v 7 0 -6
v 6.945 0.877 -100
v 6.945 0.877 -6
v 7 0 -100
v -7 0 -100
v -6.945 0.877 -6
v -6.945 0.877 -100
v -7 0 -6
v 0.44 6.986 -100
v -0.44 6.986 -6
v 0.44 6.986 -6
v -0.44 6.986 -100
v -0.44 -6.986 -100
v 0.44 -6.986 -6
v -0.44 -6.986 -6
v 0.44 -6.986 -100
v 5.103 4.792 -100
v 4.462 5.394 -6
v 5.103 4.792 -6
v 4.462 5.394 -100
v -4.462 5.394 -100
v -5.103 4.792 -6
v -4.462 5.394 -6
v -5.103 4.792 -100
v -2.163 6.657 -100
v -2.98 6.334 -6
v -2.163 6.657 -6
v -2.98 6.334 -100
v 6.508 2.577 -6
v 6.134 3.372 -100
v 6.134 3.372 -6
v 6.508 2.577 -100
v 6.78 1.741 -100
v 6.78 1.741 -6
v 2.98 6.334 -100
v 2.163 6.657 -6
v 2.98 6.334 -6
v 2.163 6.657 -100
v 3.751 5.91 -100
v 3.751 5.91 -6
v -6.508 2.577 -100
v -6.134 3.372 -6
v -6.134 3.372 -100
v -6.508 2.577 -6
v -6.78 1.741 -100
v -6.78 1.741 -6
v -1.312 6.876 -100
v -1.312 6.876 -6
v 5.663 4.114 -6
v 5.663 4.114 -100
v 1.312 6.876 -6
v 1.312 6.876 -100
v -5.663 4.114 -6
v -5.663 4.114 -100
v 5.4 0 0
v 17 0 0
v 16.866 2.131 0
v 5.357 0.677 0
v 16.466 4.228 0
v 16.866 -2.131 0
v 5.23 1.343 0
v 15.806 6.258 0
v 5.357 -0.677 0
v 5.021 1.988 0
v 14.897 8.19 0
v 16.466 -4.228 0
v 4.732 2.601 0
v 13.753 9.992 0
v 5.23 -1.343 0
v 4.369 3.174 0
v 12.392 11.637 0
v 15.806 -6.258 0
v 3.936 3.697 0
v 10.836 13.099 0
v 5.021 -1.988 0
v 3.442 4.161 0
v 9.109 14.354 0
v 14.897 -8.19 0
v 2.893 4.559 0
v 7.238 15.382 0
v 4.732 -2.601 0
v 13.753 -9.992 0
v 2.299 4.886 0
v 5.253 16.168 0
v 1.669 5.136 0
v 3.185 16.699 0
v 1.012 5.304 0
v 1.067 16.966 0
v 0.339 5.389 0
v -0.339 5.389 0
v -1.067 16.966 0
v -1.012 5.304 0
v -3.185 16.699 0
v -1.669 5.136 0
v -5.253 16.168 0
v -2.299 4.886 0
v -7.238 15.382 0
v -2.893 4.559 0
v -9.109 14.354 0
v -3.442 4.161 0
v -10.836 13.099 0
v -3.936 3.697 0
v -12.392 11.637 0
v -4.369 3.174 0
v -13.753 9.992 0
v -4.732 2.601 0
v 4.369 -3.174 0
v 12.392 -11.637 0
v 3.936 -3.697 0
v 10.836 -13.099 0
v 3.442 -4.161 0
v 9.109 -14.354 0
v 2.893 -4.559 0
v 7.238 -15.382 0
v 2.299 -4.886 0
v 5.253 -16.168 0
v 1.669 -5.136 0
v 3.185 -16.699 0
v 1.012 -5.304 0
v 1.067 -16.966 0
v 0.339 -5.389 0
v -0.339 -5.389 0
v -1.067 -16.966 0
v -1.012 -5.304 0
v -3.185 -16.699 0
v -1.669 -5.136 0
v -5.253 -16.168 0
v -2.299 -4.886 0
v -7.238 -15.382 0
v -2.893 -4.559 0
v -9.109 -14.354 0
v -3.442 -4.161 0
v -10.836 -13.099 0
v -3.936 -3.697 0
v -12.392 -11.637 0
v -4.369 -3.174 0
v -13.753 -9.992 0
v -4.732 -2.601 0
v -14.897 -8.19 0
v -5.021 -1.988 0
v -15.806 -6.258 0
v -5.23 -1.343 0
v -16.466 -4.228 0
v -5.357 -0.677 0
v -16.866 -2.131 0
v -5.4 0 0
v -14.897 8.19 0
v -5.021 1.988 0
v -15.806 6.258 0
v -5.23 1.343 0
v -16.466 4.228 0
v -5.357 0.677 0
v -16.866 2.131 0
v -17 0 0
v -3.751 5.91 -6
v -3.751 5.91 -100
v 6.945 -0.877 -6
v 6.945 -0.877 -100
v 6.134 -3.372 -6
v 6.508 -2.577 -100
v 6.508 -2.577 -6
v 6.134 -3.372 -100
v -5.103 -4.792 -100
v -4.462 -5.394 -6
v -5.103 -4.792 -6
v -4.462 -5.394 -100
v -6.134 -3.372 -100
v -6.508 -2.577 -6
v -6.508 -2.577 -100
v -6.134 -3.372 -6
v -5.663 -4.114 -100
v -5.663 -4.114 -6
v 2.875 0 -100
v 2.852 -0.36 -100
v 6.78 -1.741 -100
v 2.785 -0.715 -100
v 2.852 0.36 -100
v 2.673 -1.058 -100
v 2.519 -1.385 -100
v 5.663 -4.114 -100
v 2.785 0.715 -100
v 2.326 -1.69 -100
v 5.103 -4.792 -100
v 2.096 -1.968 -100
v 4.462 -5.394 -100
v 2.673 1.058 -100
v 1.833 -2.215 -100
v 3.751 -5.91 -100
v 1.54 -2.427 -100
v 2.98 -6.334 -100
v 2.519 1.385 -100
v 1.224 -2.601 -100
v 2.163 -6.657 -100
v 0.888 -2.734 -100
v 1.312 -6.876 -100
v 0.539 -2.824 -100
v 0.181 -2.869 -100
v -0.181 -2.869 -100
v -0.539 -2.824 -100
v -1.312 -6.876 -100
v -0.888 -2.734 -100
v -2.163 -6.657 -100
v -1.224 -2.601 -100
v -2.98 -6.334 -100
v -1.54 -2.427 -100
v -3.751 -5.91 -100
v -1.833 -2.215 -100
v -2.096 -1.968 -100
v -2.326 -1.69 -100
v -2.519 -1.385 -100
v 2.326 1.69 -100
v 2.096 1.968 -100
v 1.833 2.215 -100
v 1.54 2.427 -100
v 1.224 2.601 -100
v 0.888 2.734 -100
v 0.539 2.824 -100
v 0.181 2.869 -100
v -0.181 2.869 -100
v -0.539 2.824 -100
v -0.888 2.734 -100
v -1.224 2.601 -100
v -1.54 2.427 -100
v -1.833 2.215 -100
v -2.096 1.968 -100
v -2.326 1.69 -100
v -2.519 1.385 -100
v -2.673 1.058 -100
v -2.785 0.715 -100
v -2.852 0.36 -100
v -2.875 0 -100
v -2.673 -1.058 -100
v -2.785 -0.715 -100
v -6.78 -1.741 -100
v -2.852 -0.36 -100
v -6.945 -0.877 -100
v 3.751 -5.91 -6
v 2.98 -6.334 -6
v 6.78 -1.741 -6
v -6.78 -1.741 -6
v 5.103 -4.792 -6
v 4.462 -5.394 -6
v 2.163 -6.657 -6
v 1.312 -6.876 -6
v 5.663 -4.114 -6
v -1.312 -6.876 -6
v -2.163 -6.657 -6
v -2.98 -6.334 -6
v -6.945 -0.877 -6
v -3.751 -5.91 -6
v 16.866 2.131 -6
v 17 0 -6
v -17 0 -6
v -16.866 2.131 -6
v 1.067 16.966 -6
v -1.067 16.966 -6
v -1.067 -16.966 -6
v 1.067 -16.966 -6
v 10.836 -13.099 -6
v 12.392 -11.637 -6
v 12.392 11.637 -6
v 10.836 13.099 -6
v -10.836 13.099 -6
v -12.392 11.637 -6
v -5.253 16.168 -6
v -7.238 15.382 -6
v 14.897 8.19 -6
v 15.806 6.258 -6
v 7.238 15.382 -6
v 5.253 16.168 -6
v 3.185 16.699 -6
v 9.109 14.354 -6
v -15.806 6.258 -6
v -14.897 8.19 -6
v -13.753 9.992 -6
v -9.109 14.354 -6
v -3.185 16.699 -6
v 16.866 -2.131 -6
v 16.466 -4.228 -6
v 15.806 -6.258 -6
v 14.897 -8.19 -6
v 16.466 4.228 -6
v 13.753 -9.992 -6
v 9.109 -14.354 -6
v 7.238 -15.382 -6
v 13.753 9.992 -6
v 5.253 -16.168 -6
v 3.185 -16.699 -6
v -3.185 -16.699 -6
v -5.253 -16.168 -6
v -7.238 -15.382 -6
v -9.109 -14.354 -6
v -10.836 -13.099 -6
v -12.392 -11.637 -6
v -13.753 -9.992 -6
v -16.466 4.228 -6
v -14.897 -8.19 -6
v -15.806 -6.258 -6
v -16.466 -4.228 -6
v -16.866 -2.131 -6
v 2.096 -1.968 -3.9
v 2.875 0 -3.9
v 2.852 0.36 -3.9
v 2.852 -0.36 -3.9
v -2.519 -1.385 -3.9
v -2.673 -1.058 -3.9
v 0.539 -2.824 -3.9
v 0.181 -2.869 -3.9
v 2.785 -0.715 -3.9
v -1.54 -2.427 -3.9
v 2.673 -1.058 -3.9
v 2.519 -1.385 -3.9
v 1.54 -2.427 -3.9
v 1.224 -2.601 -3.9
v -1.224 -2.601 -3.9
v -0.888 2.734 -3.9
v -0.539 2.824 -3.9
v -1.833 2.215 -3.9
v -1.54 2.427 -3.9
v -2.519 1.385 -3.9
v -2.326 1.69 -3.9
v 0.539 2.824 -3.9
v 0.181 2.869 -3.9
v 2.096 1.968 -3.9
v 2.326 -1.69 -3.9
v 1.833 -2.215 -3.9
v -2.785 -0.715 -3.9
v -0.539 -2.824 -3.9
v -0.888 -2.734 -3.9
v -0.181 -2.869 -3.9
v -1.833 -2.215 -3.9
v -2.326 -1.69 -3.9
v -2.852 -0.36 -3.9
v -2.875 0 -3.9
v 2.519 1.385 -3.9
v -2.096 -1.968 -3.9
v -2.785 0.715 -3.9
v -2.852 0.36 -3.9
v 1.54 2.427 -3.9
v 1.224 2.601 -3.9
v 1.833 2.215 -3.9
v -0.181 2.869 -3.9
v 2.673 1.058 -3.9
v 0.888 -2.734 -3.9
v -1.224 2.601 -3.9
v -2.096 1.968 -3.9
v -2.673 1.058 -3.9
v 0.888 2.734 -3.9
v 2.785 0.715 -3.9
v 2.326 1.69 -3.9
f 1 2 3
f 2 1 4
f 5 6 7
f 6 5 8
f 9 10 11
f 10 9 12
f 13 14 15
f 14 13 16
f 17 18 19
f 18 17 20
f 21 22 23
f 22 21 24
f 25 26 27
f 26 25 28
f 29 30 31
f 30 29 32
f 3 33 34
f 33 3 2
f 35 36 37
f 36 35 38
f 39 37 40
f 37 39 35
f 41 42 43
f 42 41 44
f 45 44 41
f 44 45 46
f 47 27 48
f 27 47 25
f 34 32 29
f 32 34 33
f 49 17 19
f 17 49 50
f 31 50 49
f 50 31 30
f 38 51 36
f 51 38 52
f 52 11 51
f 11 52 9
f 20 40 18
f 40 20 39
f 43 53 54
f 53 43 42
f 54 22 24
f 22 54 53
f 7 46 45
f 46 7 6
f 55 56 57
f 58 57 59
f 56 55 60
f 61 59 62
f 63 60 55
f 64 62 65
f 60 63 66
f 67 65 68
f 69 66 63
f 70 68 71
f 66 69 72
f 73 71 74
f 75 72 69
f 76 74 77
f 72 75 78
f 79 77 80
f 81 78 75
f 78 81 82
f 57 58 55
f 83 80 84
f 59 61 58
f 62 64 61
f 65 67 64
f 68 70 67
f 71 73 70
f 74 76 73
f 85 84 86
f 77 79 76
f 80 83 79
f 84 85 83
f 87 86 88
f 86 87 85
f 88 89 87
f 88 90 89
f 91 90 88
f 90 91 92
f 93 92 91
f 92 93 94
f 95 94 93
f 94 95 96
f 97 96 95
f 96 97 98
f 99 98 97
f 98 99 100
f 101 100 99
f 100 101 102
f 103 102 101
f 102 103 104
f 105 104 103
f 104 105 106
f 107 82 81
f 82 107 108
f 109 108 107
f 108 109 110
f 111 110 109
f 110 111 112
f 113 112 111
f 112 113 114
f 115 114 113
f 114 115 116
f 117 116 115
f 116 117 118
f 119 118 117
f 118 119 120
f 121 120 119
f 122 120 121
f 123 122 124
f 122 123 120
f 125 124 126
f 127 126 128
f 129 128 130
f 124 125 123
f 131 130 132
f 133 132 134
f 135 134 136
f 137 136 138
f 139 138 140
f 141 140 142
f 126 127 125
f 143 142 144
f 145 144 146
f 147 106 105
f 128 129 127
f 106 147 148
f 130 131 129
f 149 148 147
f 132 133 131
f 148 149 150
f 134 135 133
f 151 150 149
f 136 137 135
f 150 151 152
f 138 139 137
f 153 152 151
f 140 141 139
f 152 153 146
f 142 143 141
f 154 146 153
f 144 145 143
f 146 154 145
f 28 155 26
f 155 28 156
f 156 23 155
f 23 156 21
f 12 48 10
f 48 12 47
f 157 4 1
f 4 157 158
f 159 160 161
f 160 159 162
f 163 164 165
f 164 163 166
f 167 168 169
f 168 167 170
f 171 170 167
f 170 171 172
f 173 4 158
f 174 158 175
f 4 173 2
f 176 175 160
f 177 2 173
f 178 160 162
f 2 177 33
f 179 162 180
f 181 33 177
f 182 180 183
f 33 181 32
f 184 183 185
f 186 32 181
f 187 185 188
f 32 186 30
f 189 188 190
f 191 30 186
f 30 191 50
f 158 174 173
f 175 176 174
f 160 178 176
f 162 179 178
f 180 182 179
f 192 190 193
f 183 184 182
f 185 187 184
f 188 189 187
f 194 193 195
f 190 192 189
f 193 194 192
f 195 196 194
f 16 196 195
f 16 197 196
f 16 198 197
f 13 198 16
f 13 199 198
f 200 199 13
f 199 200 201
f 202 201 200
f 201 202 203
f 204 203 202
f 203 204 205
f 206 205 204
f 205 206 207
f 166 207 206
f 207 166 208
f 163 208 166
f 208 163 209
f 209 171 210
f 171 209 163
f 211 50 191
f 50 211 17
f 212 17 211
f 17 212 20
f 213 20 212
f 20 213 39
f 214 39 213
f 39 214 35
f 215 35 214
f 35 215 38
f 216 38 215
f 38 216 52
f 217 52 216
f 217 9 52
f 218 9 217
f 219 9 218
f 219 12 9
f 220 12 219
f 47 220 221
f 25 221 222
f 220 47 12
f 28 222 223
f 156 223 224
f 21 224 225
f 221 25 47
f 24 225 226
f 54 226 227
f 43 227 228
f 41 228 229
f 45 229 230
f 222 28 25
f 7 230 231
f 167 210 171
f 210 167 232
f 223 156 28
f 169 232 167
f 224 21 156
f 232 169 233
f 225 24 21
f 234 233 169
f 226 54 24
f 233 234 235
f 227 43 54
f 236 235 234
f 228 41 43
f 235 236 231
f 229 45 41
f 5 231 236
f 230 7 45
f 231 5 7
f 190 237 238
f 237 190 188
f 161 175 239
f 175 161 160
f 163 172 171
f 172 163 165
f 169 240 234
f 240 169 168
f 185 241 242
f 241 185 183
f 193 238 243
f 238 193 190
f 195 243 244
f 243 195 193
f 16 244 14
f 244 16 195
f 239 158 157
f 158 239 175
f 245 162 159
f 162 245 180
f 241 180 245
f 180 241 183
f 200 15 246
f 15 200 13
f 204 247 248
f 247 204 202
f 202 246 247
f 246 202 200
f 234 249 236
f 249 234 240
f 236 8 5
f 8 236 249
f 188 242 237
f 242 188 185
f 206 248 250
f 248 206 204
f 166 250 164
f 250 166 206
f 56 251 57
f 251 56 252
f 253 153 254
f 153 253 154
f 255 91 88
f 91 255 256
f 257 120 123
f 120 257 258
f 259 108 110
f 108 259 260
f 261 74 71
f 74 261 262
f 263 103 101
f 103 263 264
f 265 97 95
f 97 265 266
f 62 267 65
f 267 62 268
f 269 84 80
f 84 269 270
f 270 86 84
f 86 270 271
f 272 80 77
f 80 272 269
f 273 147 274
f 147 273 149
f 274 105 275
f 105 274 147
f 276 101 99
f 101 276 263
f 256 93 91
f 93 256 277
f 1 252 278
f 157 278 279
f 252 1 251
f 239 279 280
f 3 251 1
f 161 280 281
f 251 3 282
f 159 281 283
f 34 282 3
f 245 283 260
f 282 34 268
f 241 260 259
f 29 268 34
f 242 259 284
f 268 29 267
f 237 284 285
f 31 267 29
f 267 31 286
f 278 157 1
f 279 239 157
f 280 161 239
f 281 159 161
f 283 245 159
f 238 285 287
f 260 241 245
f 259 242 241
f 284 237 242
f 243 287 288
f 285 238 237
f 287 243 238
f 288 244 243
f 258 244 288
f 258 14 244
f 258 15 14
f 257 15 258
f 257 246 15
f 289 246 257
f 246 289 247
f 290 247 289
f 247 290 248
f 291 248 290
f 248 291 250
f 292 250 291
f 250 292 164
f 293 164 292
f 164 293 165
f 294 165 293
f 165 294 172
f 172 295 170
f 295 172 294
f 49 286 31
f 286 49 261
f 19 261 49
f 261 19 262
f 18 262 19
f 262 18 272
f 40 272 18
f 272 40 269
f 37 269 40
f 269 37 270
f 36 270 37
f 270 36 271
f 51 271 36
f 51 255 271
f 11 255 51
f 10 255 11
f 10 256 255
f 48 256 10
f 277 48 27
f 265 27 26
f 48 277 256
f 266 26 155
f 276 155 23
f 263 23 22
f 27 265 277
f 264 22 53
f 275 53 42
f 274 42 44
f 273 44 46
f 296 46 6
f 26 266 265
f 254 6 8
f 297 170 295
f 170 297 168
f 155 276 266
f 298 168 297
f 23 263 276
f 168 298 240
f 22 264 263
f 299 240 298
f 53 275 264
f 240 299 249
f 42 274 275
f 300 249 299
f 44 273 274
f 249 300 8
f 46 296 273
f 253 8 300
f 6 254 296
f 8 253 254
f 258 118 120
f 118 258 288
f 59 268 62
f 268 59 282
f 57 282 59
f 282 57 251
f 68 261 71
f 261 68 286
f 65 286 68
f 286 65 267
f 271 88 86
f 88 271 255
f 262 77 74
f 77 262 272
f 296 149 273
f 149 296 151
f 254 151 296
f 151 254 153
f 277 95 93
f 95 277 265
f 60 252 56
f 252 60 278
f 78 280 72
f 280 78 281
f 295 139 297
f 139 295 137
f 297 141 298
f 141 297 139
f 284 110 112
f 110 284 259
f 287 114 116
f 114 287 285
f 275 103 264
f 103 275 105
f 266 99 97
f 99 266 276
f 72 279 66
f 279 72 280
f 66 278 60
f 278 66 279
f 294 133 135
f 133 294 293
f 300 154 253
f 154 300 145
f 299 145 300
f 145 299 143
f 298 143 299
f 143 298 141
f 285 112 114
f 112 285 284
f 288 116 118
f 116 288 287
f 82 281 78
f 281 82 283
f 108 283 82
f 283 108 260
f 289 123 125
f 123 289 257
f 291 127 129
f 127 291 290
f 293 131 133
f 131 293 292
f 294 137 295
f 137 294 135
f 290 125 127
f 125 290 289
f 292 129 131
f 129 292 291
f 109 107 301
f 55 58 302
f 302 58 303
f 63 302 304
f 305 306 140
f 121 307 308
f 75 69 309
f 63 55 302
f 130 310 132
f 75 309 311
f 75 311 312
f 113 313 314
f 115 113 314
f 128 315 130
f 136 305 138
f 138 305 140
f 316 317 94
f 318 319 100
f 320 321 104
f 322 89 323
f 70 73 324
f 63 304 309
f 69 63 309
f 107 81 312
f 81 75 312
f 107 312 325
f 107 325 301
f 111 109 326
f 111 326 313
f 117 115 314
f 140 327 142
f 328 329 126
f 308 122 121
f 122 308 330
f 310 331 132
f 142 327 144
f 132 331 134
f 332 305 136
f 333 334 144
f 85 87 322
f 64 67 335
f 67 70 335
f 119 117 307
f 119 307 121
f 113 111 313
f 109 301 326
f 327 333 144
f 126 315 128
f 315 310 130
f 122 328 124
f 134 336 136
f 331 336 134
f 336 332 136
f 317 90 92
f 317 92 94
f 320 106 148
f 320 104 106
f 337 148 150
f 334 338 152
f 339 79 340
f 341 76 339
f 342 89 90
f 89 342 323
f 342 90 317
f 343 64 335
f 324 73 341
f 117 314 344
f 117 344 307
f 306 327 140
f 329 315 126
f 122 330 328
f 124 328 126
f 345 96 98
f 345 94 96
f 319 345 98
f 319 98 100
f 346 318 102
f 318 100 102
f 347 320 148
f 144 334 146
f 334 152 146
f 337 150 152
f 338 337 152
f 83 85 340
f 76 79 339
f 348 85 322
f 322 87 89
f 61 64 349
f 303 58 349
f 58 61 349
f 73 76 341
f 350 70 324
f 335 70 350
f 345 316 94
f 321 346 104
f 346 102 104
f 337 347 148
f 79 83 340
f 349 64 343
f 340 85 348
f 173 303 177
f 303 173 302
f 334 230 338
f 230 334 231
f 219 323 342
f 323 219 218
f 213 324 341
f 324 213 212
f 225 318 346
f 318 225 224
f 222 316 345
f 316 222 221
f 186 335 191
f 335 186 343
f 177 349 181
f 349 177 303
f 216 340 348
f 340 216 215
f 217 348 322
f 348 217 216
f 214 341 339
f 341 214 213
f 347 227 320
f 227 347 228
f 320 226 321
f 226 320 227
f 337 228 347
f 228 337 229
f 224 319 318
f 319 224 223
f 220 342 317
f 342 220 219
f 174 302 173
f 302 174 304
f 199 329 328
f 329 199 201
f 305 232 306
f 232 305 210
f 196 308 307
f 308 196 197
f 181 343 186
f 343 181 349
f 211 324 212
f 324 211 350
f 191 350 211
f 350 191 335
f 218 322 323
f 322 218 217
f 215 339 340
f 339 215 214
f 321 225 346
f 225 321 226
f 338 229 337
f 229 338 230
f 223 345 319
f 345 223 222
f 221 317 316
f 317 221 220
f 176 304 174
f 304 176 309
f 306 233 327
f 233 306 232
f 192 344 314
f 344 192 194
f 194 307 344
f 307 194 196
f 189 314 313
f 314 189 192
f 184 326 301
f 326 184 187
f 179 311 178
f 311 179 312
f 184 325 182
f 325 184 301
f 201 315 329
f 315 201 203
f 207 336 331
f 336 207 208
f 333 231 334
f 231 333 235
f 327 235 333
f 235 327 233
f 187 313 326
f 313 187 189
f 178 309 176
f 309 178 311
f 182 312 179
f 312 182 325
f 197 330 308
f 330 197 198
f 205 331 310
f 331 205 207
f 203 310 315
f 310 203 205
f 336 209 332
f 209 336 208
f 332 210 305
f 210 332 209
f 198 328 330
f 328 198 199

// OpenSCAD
$fn = 50;


difference() {
	union() {
		translate(v = [0, 0, -100.0000000000]) {
			cylinder(h = 100, r = 7.0000000000);
		}
		translate(v = [0, 0, -6.0000000000]) {
			cylinder(h = 6, r = 17.0000000000);
		}
	}
	union() {
		translate(v = [0, 0, 0]) {
			rotate(a = [0, 0, 0]) {
				difference() {
					union() {
						#translate(v = [0, 0, -100.0000000000]) {
							cylinder(h = 100, r = 2.6000000000);
						}
						#translate(v = [0, 0, -3.9000000000]) {
							cylinder(h = 3.9000000000, r = 7.0000000000, r1 = 2.8750000000, r2 = 5.4000000000);
						}
						#translate(v = [0, 0, -100.0000000000]) {
							cylinder(h = 100, r = 2.8750000000);
						}
						#translate(v = [0, 0, -100.0000000000]) {
							cylinder(h = 100, r = 2.6000000000);
						}
					}
					union();
				}
			}
		}
	}
}
